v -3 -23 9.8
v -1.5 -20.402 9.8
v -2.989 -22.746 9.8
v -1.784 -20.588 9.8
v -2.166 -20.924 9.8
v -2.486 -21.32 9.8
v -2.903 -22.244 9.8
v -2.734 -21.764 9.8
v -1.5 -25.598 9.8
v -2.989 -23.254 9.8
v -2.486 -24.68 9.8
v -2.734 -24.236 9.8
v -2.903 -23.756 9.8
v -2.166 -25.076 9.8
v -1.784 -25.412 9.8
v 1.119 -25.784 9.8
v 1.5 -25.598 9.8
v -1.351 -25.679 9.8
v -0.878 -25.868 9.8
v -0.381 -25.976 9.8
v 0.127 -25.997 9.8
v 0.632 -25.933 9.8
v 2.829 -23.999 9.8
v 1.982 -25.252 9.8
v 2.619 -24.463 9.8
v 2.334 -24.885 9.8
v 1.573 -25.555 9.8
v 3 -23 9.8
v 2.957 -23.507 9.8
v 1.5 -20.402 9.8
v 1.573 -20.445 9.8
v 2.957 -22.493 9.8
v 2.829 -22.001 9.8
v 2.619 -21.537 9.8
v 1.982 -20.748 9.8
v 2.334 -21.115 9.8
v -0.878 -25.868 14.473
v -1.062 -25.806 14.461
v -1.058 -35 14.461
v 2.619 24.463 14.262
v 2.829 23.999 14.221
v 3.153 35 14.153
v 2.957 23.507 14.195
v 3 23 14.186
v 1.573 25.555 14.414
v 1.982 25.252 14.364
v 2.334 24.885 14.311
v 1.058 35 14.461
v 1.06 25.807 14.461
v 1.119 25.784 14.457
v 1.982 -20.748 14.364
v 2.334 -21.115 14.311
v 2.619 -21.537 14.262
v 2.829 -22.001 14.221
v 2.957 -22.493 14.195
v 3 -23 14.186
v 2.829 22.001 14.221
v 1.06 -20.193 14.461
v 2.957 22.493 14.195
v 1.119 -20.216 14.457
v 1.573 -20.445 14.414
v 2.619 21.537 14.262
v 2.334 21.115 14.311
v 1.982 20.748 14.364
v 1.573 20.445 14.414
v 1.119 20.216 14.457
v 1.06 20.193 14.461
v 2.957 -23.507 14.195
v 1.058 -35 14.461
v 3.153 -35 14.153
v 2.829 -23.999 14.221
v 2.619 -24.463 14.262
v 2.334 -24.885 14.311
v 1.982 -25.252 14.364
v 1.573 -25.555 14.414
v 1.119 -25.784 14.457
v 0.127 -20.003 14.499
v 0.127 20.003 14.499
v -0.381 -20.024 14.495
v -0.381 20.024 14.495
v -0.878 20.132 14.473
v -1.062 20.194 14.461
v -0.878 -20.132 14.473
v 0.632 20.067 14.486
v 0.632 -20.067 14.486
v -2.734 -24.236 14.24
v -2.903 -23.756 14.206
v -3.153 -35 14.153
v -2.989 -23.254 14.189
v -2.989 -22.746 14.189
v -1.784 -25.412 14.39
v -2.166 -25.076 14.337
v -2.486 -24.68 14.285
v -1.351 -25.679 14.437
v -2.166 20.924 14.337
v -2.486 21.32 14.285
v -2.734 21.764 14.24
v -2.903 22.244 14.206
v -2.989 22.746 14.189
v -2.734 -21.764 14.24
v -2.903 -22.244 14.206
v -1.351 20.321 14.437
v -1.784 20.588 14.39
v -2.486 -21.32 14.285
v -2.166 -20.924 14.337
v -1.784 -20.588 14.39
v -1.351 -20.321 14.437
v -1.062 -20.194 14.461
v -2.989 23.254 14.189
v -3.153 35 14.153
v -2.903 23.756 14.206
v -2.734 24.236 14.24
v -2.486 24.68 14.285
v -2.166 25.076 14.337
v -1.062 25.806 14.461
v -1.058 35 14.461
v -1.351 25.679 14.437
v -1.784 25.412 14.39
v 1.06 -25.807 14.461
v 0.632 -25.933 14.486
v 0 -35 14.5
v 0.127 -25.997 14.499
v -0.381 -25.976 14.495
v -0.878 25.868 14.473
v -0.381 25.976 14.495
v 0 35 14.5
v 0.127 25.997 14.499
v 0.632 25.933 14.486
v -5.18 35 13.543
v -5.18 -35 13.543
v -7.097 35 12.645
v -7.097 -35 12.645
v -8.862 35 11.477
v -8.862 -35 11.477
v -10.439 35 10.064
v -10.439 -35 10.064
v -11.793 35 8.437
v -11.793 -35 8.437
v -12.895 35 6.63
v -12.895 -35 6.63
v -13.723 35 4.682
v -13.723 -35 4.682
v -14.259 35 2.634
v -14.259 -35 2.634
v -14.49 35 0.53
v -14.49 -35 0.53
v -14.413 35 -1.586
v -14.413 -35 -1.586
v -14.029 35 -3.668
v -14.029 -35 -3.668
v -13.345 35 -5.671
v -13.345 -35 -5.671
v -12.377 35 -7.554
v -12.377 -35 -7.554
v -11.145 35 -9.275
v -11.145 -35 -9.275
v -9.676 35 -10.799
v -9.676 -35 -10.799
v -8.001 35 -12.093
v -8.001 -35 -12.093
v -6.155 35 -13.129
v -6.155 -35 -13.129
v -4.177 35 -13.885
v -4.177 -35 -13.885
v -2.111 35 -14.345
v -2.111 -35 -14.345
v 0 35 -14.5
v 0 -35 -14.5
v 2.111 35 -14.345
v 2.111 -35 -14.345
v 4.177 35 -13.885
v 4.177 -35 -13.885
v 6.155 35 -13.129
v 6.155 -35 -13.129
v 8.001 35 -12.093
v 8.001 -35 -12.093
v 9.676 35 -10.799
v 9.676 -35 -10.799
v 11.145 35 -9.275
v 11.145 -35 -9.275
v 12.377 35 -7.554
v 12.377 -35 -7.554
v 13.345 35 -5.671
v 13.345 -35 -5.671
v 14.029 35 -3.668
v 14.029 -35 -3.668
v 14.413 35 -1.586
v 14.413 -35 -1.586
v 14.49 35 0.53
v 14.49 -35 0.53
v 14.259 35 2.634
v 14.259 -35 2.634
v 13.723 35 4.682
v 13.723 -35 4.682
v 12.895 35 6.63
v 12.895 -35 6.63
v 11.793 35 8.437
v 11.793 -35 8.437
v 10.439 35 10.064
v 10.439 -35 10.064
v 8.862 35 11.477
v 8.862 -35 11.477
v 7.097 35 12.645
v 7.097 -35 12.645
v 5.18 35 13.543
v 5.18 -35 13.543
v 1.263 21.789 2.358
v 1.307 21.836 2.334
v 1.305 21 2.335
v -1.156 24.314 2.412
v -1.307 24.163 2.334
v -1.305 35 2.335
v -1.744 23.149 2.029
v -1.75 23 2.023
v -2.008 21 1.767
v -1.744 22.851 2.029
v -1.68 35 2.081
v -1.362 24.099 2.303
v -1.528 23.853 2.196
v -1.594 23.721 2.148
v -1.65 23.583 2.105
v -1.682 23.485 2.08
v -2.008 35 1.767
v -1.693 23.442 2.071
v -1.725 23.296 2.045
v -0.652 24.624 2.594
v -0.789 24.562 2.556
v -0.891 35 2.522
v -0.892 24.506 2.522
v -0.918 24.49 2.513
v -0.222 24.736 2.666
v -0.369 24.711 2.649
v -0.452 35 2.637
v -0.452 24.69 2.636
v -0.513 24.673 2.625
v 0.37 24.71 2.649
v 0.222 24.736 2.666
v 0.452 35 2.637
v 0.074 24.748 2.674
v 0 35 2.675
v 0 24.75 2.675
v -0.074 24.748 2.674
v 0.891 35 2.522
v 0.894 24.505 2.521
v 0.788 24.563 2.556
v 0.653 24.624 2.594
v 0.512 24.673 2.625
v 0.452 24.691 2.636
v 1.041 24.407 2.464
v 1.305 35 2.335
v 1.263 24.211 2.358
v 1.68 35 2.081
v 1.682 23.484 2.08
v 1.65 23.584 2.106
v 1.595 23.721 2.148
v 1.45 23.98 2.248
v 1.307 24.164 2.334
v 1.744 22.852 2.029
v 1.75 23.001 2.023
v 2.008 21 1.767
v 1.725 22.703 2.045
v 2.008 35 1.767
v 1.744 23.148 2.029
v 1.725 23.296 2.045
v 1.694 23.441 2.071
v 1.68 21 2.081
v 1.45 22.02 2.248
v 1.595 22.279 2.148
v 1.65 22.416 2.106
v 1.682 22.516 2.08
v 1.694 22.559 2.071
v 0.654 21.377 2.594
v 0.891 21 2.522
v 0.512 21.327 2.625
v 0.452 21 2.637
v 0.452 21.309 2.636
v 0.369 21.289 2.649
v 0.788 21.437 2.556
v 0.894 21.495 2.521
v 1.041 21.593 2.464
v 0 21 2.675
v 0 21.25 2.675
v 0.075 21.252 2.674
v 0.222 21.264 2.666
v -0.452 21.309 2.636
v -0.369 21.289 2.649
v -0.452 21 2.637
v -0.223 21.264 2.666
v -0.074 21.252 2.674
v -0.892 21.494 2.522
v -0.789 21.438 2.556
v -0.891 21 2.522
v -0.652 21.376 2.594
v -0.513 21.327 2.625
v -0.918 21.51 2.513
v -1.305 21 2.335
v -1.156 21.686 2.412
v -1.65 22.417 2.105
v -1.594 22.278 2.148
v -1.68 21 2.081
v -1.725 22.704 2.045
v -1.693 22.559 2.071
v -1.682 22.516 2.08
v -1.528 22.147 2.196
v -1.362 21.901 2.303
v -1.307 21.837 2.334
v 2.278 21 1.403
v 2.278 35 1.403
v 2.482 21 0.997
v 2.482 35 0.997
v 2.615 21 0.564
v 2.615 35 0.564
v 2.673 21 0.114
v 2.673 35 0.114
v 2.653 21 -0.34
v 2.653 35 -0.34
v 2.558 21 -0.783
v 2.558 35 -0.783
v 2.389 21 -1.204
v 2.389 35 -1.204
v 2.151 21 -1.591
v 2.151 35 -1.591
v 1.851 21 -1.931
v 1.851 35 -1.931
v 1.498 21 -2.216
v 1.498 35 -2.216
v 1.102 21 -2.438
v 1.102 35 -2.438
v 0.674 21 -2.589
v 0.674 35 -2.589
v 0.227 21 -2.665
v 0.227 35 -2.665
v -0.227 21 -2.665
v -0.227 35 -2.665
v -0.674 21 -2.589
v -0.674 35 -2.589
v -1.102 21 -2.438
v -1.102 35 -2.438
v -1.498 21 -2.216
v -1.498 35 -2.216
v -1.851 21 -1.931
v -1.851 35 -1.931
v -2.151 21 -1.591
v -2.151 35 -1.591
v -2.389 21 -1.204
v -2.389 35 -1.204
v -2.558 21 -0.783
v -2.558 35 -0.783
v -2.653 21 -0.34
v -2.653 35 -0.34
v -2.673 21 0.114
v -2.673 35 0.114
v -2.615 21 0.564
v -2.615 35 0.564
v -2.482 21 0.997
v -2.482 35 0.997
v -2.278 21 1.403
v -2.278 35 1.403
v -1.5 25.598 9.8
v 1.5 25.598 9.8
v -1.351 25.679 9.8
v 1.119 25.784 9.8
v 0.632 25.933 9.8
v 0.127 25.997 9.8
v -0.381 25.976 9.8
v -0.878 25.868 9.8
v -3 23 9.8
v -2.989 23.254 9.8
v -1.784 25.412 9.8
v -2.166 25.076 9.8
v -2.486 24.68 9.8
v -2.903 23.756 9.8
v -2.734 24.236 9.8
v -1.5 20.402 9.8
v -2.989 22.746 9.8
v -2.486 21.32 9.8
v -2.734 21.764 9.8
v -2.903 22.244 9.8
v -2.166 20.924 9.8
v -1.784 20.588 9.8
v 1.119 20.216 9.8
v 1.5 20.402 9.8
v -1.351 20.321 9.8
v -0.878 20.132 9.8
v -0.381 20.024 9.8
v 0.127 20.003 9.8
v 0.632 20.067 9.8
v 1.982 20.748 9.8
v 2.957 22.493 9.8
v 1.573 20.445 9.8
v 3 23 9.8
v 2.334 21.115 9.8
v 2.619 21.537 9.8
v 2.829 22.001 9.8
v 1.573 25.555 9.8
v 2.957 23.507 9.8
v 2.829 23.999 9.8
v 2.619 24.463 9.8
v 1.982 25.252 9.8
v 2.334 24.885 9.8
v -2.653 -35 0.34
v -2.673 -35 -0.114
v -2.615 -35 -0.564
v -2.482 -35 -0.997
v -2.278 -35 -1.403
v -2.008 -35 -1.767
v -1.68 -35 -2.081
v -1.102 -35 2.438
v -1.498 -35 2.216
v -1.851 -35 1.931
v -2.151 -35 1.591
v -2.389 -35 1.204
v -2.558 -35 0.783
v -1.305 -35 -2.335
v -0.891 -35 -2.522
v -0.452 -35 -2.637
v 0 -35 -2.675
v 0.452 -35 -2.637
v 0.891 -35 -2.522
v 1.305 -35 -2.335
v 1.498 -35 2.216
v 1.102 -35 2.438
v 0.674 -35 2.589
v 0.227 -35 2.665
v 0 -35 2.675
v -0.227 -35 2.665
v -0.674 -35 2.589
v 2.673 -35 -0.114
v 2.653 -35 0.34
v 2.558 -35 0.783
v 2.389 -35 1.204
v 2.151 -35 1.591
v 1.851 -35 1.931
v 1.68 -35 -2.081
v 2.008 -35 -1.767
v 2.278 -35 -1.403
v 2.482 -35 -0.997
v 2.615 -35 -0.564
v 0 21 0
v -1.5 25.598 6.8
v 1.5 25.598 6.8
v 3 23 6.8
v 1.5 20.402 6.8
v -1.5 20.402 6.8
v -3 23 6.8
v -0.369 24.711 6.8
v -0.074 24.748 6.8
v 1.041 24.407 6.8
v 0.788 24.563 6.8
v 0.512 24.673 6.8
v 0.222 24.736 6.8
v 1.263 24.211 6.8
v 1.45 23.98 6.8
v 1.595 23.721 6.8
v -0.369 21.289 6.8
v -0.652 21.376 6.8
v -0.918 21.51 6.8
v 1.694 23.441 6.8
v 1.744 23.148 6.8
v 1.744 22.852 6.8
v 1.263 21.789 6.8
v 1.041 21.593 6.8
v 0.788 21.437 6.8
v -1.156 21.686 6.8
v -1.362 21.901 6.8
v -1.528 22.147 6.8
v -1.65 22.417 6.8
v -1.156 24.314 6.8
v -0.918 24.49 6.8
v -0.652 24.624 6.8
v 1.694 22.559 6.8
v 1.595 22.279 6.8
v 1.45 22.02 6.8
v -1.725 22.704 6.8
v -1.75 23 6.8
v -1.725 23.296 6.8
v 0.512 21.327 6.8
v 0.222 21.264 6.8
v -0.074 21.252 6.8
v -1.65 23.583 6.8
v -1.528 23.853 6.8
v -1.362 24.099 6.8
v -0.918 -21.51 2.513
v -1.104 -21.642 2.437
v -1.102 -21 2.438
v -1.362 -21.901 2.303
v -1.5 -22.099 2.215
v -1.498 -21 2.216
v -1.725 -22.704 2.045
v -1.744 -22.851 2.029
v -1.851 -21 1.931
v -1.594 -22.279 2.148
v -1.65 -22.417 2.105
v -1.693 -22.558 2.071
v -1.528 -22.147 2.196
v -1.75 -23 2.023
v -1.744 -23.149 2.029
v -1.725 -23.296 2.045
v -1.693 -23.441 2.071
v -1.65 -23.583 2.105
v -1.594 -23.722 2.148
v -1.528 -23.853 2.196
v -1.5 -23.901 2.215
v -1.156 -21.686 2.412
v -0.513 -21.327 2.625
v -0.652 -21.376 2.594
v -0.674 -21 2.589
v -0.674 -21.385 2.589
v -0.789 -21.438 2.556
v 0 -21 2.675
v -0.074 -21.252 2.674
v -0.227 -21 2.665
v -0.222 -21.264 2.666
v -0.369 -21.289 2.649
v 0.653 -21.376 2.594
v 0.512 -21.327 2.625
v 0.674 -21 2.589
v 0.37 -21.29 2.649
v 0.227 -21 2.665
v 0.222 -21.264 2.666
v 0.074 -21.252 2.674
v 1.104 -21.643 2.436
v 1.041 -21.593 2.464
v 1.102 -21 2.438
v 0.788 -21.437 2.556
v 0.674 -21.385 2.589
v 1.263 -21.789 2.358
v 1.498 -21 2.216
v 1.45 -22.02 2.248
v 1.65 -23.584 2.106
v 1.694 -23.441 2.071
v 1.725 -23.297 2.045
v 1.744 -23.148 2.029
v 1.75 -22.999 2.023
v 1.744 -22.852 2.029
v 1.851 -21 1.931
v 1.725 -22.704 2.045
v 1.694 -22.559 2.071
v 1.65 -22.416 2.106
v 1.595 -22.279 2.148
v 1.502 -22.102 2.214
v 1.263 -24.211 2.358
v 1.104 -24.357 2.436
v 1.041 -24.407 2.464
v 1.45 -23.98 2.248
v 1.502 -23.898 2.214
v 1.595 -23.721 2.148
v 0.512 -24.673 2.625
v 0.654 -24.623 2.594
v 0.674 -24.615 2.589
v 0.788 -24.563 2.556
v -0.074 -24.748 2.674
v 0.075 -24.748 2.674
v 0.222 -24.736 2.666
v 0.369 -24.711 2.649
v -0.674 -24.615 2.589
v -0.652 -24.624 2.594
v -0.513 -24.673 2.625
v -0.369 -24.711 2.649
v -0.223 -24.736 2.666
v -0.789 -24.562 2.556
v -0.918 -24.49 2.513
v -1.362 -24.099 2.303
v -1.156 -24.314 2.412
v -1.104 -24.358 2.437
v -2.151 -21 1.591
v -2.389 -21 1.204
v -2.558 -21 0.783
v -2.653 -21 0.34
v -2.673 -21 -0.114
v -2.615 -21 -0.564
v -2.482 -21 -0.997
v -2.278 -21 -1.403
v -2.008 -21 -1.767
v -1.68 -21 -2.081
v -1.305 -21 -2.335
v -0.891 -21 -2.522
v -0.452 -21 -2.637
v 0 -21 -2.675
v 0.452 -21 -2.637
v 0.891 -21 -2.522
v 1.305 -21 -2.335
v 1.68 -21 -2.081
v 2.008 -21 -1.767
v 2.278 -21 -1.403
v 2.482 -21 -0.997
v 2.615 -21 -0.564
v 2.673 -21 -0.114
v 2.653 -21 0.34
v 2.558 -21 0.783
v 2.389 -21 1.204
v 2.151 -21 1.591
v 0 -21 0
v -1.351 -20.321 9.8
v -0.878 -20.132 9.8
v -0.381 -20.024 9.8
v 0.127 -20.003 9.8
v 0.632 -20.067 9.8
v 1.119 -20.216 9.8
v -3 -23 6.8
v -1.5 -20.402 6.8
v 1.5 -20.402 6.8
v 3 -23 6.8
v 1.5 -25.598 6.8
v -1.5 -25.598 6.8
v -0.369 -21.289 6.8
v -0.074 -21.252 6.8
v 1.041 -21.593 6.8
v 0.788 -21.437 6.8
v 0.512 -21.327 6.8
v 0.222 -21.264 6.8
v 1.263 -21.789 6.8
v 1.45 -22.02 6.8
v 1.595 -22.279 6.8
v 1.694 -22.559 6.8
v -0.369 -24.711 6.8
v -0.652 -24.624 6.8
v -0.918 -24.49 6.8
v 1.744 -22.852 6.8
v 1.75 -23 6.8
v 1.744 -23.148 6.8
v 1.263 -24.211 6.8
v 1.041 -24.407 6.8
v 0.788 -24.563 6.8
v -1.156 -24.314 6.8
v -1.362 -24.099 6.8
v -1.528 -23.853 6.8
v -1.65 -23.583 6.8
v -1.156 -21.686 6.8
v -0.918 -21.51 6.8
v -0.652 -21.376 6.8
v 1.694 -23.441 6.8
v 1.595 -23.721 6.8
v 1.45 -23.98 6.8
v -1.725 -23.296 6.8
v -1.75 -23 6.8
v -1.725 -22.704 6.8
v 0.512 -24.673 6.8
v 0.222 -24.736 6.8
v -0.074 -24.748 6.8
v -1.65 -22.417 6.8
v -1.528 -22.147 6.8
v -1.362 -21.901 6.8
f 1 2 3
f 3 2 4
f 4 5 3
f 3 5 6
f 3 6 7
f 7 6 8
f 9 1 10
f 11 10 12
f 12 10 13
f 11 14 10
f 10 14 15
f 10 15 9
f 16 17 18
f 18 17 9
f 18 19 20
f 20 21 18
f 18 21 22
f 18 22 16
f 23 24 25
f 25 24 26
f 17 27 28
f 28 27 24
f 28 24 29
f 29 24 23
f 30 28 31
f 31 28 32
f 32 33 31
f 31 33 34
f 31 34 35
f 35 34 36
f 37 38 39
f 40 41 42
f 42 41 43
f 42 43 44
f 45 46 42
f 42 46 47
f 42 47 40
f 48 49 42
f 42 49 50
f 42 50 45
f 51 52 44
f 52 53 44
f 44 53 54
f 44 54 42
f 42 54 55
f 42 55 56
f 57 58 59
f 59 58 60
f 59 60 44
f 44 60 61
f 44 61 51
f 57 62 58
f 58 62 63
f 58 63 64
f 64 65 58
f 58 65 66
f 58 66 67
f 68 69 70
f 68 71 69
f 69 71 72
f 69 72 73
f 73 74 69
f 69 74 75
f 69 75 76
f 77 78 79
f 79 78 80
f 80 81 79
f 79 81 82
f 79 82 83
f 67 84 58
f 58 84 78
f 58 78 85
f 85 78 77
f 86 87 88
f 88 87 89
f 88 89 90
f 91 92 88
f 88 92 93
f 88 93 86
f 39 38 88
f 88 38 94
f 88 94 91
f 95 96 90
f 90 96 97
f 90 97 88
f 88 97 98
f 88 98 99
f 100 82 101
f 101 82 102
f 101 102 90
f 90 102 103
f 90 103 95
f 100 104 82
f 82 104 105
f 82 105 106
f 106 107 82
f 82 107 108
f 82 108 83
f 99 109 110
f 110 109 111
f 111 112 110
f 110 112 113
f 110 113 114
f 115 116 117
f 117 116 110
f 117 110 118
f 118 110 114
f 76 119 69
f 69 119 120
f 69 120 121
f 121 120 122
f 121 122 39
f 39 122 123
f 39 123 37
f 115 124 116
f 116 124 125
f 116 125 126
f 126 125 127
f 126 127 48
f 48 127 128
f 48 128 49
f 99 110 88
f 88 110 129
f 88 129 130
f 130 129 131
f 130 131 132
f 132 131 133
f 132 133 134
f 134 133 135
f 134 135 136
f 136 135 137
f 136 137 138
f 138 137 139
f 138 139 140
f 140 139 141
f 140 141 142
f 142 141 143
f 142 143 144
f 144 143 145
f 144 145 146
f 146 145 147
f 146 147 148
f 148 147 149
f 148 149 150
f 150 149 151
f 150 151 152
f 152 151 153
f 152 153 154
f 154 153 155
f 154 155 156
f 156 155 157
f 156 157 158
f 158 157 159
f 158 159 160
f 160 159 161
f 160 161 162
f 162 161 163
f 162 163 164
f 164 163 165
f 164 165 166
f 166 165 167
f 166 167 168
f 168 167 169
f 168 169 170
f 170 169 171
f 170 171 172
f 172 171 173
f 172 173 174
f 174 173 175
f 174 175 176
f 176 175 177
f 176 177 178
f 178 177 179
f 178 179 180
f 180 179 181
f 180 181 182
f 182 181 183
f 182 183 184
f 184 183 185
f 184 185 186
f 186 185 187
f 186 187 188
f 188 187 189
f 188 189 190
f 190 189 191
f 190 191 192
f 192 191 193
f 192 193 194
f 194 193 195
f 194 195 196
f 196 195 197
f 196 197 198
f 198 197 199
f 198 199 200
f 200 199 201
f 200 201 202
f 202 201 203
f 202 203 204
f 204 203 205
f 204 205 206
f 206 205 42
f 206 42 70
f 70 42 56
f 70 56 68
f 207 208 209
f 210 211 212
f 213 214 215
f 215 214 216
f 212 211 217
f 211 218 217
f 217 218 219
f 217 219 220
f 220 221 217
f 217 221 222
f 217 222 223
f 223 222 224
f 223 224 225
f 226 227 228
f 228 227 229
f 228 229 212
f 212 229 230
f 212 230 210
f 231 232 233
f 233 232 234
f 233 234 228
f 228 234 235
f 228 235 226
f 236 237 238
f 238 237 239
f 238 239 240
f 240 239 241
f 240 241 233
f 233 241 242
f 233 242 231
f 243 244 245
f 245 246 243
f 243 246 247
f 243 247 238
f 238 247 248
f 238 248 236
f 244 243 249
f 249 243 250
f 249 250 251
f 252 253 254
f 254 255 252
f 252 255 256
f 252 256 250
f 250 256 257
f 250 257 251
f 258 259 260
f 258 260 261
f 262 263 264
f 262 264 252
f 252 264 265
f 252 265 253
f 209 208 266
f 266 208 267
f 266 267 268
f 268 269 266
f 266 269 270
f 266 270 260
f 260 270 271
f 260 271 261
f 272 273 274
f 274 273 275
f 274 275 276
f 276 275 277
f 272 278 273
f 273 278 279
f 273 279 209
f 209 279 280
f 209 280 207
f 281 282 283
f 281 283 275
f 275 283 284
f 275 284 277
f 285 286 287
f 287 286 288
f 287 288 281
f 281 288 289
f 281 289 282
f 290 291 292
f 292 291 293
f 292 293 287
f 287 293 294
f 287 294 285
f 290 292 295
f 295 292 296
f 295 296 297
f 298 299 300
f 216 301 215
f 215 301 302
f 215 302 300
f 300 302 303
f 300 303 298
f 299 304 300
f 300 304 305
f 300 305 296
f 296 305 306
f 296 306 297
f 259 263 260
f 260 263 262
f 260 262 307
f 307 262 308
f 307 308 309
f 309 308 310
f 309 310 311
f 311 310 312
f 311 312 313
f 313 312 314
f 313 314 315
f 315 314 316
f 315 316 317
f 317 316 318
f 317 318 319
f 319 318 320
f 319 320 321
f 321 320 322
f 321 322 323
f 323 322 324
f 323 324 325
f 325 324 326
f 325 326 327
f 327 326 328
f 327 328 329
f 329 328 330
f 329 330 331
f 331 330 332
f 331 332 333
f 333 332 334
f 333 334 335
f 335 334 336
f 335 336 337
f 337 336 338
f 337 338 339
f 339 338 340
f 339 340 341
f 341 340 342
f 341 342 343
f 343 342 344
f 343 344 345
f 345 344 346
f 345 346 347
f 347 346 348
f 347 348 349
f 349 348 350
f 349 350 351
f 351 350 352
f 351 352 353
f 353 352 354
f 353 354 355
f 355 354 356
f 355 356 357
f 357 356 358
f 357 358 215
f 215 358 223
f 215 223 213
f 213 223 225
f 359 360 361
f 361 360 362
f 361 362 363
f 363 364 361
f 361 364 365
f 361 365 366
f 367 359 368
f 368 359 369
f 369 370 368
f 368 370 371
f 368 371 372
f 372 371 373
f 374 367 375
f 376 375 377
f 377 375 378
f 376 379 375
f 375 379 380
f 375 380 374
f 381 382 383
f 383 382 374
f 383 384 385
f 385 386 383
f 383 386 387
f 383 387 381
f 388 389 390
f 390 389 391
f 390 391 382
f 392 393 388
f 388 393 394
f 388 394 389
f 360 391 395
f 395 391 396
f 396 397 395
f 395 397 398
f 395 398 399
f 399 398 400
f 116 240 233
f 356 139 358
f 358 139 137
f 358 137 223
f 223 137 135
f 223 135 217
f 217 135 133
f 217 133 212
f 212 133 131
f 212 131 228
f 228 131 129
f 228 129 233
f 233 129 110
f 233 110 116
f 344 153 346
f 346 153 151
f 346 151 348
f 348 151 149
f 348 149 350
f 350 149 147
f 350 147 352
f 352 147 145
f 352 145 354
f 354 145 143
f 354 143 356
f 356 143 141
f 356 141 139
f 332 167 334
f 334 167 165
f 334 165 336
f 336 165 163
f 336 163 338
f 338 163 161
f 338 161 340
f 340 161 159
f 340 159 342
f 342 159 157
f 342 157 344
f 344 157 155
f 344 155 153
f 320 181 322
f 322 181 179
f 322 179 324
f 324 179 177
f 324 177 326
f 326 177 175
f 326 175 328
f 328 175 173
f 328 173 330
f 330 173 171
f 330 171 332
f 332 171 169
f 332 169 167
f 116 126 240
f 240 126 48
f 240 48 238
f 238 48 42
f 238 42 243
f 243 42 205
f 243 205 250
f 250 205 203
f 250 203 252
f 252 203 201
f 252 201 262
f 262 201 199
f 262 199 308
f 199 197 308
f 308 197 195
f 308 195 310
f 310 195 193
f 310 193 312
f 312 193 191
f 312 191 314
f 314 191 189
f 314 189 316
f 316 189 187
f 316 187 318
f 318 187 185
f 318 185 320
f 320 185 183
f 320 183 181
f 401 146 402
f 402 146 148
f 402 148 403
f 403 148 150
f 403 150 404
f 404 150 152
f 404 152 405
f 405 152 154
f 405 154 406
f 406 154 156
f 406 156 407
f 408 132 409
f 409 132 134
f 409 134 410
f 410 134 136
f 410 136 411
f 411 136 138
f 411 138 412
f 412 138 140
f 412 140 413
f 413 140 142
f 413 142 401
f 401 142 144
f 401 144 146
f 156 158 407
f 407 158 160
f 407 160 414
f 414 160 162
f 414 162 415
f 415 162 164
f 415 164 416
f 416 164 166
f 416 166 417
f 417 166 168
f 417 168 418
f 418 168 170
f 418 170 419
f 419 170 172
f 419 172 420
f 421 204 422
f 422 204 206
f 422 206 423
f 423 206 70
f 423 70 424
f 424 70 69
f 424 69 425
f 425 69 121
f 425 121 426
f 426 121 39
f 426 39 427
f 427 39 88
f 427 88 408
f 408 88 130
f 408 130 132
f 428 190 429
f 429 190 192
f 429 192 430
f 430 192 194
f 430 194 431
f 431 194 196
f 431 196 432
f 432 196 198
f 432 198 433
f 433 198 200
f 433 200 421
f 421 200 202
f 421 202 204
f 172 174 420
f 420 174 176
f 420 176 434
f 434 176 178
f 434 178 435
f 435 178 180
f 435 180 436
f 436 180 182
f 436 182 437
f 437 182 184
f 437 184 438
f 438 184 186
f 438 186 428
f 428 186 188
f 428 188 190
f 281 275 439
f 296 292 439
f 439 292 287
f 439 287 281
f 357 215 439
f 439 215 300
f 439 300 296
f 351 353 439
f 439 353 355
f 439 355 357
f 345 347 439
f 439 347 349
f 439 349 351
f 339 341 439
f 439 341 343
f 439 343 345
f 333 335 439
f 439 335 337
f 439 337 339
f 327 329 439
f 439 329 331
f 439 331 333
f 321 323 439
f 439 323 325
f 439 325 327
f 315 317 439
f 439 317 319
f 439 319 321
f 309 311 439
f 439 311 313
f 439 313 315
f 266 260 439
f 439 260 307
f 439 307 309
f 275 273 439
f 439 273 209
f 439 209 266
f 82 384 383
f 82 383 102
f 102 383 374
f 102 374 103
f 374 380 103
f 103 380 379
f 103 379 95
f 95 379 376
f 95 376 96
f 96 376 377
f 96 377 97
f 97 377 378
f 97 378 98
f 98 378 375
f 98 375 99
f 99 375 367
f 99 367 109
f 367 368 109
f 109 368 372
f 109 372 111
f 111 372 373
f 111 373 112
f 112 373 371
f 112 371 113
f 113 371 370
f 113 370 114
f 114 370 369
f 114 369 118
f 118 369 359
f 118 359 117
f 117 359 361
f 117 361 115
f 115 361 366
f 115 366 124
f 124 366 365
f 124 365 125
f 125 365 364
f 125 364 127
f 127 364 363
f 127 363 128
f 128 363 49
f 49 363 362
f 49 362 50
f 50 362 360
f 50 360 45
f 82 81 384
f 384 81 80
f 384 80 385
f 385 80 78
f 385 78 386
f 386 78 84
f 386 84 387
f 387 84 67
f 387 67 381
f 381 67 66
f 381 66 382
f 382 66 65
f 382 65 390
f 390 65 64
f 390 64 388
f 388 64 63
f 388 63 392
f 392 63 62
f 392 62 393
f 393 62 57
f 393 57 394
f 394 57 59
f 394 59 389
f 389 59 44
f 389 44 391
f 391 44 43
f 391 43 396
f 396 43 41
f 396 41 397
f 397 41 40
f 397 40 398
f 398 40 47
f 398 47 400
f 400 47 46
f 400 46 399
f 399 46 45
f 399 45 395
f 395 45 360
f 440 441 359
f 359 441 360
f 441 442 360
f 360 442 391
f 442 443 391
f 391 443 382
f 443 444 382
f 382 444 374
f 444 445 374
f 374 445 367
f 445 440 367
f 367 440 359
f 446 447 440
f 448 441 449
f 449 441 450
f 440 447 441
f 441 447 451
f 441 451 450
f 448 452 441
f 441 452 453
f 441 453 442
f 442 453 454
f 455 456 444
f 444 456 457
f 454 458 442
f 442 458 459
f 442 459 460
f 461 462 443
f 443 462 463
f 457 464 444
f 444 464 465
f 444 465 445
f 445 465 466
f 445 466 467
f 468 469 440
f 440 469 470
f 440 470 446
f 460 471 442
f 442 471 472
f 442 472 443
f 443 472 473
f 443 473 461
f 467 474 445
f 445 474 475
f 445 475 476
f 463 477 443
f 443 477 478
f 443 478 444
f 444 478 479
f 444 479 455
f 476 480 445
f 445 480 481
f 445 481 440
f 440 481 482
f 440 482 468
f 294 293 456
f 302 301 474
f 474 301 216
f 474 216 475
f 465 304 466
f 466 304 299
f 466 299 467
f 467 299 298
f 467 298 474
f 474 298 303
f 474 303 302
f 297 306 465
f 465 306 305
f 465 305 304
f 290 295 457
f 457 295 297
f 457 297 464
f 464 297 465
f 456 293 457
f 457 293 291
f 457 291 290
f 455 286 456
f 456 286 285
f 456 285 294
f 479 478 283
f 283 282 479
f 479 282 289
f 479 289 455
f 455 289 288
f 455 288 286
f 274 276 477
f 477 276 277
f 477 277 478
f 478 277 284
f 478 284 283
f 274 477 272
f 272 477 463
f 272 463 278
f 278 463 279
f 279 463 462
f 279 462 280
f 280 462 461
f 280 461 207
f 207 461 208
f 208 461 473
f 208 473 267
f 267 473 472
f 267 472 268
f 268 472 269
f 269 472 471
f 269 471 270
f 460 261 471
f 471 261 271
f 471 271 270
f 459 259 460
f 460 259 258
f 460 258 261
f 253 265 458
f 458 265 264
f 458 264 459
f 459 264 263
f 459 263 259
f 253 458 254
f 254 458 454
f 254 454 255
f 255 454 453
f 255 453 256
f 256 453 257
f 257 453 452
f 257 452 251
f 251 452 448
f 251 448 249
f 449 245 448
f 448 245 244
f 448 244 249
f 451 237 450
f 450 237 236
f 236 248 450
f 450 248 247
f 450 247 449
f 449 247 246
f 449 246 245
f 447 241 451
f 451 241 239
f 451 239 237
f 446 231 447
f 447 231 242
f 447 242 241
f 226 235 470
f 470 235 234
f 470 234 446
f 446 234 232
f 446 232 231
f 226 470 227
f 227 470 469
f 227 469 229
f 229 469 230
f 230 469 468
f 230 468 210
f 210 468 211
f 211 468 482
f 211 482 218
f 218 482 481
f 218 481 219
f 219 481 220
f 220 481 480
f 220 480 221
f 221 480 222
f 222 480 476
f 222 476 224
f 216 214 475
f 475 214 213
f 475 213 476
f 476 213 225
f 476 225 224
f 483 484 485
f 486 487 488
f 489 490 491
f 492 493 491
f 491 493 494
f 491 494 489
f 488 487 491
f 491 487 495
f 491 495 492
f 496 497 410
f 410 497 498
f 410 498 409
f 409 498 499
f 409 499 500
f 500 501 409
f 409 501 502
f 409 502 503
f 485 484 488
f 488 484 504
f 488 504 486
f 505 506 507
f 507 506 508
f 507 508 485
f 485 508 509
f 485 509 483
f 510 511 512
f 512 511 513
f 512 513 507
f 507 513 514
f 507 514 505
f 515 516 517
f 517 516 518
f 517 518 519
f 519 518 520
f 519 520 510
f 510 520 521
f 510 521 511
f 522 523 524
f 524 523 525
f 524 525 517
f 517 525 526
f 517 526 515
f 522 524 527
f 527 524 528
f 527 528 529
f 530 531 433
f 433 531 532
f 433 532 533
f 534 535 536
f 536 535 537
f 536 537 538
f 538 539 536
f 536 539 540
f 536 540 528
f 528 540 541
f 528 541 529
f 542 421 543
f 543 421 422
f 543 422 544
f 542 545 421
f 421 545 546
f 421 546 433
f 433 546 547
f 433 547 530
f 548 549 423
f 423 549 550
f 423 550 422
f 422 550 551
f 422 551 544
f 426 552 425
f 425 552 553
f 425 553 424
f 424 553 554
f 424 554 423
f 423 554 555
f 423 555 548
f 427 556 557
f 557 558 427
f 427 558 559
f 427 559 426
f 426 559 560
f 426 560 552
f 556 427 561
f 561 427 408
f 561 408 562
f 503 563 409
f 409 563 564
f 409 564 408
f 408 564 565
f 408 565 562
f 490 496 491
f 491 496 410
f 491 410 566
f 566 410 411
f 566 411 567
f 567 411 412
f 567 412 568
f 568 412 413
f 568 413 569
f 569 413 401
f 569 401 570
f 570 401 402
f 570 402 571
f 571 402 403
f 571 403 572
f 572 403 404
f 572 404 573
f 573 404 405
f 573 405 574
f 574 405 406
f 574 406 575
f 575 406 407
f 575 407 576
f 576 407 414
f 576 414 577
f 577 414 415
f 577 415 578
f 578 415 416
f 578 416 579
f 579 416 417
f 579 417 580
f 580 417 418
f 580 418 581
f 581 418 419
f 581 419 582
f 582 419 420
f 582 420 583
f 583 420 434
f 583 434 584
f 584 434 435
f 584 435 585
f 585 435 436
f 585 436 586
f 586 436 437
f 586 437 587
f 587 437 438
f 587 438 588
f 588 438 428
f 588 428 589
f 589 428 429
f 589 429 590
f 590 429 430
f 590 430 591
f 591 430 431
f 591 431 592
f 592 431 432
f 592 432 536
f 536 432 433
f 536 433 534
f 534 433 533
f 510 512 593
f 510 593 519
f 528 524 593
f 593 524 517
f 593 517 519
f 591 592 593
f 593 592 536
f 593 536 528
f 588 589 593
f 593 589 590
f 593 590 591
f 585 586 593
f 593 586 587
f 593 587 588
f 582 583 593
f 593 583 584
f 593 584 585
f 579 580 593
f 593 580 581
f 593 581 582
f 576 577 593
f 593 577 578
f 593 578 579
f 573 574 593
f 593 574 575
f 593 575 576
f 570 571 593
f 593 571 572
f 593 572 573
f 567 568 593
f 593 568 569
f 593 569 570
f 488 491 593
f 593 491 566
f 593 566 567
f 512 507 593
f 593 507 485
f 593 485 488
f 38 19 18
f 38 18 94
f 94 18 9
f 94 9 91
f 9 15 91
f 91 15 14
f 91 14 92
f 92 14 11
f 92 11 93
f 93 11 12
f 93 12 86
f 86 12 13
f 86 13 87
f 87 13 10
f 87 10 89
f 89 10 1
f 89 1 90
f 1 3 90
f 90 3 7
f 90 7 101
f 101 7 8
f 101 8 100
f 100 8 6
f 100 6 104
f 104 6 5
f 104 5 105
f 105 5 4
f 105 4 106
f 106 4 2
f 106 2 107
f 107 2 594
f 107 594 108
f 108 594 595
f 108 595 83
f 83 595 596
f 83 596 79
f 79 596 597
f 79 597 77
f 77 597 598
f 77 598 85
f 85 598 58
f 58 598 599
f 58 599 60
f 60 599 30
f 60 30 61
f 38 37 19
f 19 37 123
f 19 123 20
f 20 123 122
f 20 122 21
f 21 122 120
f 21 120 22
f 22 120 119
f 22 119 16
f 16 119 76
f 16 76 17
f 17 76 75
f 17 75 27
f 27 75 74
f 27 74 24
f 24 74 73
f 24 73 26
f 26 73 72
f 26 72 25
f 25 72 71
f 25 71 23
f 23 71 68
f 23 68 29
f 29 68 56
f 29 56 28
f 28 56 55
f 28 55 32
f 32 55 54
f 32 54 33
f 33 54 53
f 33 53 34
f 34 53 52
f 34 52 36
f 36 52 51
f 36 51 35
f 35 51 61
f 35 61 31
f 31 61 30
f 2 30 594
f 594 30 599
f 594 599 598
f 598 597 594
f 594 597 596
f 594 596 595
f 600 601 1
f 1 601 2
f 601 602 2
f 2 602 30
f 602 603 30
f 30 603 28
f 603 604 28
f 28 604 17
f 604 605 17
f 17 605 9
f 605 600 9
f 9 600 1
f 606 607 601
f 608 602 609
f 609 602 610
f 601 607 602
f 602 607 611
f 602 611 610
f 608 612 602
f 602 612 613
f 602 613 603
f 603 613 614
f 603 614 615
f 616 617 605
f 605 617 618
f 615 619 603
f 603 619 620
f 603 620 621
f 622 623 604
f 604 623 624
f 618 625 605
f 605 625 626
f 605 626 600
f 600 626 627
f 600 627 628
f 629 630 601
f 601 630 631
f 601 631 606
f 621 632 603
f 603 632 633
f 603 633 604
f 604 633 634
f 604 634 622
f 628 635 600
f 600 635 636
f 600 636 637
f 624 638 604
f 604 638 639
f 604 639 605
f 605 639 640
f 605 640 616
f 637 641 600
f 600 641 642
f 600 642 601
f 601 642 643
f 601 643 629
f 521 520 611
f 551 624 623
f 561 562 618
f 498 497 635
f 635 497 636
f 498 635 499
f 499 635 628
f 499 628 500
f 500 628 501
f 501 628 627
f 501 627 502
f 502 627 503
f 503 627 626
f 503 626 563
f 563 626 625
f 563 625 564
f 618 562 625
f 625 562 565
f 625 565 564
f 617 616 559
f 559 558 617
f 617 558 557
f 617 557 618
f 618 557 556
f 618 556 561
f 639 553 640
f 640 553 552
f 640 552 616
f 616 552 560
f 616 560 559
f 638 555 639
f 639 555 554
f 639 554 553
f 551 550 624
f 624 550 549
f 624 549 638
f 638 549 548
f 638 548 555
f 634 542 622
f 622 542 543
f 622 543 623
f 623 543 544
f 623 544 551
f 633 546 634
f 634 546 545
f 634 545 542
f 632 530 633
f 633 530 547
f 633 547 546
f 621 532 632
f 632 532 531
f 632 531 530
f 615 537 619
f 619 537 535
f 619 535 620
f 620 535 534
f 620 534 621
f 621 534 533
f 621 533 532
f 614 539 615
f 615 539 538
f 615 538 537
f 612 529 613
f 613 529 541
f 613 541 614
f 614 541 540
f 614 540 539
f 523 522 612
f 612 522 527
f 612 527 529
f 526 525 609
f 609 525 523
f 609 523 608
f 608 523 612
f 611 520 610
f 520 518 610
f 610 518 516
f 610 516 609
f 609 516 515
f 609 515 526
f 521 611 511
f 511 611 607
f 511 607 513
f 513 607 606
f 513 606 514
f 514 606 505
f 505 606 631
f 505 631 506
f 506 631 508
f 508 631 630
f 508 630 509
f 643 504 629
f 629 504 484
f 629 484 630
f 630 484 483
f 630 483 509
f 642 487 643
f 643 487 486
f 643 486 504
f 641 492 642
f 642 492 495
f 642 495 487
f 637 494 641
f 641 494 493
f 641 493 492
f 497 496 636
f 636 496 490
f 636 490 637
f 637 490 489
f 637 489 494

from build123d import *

# Parameters (mm, degrees)
CROQUIS2_R              = 14.5
SALIENTE_EXTRUIR1_DEPTH = 35
CROQUIS3_R              = 2.675
CORTAR_EXTRUIR1_DEPTH   = 14
CROQUIS7_R              = 3
CORTAR_EXTRUIR6_DEPTH   = 4.7
CORTAR_EXTRUIR8_START   = 9.8
CORTAR_EXTRUIR8_DEPTH   = 3
CORTAR_EXTRUIR2_REACH   = 42.565
CROQUIS4_R              = 1.75


with BuildPart() as part:
    # Croquis2 → Saliente-Extruir1 (new, symmetric)
    with BuildSketch(Plane(origin=(0, 0, 0), x_dir=(1, 0, 0), z_dir=(0, 1, 0))):
        with Locations(Location((0, 0, 0), (0, 0, 270))):
            Circle(CROQUIS2_R)
    extrude(amount=SALIENTE_EXTRUIR1_DEPTH, both=True)

    # Croquis3 → Cortar-Extruir1 (cut)
    with BuildSketch(Plane(origin=(0, 35, 0), x_dir=(1, 0, 0), z_dir=(0, 1, 0))):
        with Locations(Location((0, 0, 0), (0, 0, 270))):
            Circle(CROQUIS3_R)
    cortar_extruir1 = extrude(amount=-CORTAR_EXTRUIR1_DEPTH, mode=Mode.SUBTRACT)

    # Croquis7 → Cortar-Extruir6 (cut)
    with BuildSketch(Plane.XY.offset(14.5)):
        with Locations((0, 23)):
            Circle(CROQUIS7_R)
    cortar_extruir6 = extrude(amount=-CORTAR_EXTRUIR6_DEPTH, mode=Mode.SUBTRACT)

    # Croquis5 → Cortar-Extruir8 (cut)
    with BuildSketch(Plane.XY.offset(CORTAR_EXTRUIR8_START)):
        Polygon((-1.5, 20.401923789), (1.5, 20.401923789), (3, 23), (1.5, 25.598076211), (-1.5, 25.598076211), (-3, 23), align=None)
    cortar_extruir8 = extrude(amount=-CORTAR_EXTRUIR8_DEPTH, mode=Mode.SUBTRACT)

    # Croquis4 → Cortar-Extruir2 (cut, up to next)
    with BuildSketch(Plane.XY, mode=Mode.PRIVATE) as cortar_extruir2_sk1:
        with Locations(Location((0, 23, 0), (0, 0, 180))):
            Circle(CROQUIS4_R)
    cortar_extruir2_tool1 = extrude(cortar_extruir2_sk1.sketch, amount=CORTAR_EXTRUIR2_REACH, mode=Mode.PRIVATE) & part.part
    cortar_extruir2 = cortar_extruir2_tool1.solids().sort_by_distance((0, 23, 0))[0]
    add(cortar_extruir2, mode=Mode.SUBTRACT)

    # Simetría2: Cortar-Extruir1, Cortar-Extruir6, Cortar-Extruir8, Cortar-Extruir2 across plane
    add(cortar_extruir1.mirror(Plane.ZX), mode=Mode.SUBTRACT)
    add(cortar_extruir6.mirror(Plane.ZX), mode=Mode.SUBTRACT)
    add(cortar_extruir8.mirror(Plane.ZX), mode=Mode.SUBTRACT)
    add(cortar_extruir2.mirror(Plane.ZX), mode=Mode.SUBTRACT)


solid = part.part
